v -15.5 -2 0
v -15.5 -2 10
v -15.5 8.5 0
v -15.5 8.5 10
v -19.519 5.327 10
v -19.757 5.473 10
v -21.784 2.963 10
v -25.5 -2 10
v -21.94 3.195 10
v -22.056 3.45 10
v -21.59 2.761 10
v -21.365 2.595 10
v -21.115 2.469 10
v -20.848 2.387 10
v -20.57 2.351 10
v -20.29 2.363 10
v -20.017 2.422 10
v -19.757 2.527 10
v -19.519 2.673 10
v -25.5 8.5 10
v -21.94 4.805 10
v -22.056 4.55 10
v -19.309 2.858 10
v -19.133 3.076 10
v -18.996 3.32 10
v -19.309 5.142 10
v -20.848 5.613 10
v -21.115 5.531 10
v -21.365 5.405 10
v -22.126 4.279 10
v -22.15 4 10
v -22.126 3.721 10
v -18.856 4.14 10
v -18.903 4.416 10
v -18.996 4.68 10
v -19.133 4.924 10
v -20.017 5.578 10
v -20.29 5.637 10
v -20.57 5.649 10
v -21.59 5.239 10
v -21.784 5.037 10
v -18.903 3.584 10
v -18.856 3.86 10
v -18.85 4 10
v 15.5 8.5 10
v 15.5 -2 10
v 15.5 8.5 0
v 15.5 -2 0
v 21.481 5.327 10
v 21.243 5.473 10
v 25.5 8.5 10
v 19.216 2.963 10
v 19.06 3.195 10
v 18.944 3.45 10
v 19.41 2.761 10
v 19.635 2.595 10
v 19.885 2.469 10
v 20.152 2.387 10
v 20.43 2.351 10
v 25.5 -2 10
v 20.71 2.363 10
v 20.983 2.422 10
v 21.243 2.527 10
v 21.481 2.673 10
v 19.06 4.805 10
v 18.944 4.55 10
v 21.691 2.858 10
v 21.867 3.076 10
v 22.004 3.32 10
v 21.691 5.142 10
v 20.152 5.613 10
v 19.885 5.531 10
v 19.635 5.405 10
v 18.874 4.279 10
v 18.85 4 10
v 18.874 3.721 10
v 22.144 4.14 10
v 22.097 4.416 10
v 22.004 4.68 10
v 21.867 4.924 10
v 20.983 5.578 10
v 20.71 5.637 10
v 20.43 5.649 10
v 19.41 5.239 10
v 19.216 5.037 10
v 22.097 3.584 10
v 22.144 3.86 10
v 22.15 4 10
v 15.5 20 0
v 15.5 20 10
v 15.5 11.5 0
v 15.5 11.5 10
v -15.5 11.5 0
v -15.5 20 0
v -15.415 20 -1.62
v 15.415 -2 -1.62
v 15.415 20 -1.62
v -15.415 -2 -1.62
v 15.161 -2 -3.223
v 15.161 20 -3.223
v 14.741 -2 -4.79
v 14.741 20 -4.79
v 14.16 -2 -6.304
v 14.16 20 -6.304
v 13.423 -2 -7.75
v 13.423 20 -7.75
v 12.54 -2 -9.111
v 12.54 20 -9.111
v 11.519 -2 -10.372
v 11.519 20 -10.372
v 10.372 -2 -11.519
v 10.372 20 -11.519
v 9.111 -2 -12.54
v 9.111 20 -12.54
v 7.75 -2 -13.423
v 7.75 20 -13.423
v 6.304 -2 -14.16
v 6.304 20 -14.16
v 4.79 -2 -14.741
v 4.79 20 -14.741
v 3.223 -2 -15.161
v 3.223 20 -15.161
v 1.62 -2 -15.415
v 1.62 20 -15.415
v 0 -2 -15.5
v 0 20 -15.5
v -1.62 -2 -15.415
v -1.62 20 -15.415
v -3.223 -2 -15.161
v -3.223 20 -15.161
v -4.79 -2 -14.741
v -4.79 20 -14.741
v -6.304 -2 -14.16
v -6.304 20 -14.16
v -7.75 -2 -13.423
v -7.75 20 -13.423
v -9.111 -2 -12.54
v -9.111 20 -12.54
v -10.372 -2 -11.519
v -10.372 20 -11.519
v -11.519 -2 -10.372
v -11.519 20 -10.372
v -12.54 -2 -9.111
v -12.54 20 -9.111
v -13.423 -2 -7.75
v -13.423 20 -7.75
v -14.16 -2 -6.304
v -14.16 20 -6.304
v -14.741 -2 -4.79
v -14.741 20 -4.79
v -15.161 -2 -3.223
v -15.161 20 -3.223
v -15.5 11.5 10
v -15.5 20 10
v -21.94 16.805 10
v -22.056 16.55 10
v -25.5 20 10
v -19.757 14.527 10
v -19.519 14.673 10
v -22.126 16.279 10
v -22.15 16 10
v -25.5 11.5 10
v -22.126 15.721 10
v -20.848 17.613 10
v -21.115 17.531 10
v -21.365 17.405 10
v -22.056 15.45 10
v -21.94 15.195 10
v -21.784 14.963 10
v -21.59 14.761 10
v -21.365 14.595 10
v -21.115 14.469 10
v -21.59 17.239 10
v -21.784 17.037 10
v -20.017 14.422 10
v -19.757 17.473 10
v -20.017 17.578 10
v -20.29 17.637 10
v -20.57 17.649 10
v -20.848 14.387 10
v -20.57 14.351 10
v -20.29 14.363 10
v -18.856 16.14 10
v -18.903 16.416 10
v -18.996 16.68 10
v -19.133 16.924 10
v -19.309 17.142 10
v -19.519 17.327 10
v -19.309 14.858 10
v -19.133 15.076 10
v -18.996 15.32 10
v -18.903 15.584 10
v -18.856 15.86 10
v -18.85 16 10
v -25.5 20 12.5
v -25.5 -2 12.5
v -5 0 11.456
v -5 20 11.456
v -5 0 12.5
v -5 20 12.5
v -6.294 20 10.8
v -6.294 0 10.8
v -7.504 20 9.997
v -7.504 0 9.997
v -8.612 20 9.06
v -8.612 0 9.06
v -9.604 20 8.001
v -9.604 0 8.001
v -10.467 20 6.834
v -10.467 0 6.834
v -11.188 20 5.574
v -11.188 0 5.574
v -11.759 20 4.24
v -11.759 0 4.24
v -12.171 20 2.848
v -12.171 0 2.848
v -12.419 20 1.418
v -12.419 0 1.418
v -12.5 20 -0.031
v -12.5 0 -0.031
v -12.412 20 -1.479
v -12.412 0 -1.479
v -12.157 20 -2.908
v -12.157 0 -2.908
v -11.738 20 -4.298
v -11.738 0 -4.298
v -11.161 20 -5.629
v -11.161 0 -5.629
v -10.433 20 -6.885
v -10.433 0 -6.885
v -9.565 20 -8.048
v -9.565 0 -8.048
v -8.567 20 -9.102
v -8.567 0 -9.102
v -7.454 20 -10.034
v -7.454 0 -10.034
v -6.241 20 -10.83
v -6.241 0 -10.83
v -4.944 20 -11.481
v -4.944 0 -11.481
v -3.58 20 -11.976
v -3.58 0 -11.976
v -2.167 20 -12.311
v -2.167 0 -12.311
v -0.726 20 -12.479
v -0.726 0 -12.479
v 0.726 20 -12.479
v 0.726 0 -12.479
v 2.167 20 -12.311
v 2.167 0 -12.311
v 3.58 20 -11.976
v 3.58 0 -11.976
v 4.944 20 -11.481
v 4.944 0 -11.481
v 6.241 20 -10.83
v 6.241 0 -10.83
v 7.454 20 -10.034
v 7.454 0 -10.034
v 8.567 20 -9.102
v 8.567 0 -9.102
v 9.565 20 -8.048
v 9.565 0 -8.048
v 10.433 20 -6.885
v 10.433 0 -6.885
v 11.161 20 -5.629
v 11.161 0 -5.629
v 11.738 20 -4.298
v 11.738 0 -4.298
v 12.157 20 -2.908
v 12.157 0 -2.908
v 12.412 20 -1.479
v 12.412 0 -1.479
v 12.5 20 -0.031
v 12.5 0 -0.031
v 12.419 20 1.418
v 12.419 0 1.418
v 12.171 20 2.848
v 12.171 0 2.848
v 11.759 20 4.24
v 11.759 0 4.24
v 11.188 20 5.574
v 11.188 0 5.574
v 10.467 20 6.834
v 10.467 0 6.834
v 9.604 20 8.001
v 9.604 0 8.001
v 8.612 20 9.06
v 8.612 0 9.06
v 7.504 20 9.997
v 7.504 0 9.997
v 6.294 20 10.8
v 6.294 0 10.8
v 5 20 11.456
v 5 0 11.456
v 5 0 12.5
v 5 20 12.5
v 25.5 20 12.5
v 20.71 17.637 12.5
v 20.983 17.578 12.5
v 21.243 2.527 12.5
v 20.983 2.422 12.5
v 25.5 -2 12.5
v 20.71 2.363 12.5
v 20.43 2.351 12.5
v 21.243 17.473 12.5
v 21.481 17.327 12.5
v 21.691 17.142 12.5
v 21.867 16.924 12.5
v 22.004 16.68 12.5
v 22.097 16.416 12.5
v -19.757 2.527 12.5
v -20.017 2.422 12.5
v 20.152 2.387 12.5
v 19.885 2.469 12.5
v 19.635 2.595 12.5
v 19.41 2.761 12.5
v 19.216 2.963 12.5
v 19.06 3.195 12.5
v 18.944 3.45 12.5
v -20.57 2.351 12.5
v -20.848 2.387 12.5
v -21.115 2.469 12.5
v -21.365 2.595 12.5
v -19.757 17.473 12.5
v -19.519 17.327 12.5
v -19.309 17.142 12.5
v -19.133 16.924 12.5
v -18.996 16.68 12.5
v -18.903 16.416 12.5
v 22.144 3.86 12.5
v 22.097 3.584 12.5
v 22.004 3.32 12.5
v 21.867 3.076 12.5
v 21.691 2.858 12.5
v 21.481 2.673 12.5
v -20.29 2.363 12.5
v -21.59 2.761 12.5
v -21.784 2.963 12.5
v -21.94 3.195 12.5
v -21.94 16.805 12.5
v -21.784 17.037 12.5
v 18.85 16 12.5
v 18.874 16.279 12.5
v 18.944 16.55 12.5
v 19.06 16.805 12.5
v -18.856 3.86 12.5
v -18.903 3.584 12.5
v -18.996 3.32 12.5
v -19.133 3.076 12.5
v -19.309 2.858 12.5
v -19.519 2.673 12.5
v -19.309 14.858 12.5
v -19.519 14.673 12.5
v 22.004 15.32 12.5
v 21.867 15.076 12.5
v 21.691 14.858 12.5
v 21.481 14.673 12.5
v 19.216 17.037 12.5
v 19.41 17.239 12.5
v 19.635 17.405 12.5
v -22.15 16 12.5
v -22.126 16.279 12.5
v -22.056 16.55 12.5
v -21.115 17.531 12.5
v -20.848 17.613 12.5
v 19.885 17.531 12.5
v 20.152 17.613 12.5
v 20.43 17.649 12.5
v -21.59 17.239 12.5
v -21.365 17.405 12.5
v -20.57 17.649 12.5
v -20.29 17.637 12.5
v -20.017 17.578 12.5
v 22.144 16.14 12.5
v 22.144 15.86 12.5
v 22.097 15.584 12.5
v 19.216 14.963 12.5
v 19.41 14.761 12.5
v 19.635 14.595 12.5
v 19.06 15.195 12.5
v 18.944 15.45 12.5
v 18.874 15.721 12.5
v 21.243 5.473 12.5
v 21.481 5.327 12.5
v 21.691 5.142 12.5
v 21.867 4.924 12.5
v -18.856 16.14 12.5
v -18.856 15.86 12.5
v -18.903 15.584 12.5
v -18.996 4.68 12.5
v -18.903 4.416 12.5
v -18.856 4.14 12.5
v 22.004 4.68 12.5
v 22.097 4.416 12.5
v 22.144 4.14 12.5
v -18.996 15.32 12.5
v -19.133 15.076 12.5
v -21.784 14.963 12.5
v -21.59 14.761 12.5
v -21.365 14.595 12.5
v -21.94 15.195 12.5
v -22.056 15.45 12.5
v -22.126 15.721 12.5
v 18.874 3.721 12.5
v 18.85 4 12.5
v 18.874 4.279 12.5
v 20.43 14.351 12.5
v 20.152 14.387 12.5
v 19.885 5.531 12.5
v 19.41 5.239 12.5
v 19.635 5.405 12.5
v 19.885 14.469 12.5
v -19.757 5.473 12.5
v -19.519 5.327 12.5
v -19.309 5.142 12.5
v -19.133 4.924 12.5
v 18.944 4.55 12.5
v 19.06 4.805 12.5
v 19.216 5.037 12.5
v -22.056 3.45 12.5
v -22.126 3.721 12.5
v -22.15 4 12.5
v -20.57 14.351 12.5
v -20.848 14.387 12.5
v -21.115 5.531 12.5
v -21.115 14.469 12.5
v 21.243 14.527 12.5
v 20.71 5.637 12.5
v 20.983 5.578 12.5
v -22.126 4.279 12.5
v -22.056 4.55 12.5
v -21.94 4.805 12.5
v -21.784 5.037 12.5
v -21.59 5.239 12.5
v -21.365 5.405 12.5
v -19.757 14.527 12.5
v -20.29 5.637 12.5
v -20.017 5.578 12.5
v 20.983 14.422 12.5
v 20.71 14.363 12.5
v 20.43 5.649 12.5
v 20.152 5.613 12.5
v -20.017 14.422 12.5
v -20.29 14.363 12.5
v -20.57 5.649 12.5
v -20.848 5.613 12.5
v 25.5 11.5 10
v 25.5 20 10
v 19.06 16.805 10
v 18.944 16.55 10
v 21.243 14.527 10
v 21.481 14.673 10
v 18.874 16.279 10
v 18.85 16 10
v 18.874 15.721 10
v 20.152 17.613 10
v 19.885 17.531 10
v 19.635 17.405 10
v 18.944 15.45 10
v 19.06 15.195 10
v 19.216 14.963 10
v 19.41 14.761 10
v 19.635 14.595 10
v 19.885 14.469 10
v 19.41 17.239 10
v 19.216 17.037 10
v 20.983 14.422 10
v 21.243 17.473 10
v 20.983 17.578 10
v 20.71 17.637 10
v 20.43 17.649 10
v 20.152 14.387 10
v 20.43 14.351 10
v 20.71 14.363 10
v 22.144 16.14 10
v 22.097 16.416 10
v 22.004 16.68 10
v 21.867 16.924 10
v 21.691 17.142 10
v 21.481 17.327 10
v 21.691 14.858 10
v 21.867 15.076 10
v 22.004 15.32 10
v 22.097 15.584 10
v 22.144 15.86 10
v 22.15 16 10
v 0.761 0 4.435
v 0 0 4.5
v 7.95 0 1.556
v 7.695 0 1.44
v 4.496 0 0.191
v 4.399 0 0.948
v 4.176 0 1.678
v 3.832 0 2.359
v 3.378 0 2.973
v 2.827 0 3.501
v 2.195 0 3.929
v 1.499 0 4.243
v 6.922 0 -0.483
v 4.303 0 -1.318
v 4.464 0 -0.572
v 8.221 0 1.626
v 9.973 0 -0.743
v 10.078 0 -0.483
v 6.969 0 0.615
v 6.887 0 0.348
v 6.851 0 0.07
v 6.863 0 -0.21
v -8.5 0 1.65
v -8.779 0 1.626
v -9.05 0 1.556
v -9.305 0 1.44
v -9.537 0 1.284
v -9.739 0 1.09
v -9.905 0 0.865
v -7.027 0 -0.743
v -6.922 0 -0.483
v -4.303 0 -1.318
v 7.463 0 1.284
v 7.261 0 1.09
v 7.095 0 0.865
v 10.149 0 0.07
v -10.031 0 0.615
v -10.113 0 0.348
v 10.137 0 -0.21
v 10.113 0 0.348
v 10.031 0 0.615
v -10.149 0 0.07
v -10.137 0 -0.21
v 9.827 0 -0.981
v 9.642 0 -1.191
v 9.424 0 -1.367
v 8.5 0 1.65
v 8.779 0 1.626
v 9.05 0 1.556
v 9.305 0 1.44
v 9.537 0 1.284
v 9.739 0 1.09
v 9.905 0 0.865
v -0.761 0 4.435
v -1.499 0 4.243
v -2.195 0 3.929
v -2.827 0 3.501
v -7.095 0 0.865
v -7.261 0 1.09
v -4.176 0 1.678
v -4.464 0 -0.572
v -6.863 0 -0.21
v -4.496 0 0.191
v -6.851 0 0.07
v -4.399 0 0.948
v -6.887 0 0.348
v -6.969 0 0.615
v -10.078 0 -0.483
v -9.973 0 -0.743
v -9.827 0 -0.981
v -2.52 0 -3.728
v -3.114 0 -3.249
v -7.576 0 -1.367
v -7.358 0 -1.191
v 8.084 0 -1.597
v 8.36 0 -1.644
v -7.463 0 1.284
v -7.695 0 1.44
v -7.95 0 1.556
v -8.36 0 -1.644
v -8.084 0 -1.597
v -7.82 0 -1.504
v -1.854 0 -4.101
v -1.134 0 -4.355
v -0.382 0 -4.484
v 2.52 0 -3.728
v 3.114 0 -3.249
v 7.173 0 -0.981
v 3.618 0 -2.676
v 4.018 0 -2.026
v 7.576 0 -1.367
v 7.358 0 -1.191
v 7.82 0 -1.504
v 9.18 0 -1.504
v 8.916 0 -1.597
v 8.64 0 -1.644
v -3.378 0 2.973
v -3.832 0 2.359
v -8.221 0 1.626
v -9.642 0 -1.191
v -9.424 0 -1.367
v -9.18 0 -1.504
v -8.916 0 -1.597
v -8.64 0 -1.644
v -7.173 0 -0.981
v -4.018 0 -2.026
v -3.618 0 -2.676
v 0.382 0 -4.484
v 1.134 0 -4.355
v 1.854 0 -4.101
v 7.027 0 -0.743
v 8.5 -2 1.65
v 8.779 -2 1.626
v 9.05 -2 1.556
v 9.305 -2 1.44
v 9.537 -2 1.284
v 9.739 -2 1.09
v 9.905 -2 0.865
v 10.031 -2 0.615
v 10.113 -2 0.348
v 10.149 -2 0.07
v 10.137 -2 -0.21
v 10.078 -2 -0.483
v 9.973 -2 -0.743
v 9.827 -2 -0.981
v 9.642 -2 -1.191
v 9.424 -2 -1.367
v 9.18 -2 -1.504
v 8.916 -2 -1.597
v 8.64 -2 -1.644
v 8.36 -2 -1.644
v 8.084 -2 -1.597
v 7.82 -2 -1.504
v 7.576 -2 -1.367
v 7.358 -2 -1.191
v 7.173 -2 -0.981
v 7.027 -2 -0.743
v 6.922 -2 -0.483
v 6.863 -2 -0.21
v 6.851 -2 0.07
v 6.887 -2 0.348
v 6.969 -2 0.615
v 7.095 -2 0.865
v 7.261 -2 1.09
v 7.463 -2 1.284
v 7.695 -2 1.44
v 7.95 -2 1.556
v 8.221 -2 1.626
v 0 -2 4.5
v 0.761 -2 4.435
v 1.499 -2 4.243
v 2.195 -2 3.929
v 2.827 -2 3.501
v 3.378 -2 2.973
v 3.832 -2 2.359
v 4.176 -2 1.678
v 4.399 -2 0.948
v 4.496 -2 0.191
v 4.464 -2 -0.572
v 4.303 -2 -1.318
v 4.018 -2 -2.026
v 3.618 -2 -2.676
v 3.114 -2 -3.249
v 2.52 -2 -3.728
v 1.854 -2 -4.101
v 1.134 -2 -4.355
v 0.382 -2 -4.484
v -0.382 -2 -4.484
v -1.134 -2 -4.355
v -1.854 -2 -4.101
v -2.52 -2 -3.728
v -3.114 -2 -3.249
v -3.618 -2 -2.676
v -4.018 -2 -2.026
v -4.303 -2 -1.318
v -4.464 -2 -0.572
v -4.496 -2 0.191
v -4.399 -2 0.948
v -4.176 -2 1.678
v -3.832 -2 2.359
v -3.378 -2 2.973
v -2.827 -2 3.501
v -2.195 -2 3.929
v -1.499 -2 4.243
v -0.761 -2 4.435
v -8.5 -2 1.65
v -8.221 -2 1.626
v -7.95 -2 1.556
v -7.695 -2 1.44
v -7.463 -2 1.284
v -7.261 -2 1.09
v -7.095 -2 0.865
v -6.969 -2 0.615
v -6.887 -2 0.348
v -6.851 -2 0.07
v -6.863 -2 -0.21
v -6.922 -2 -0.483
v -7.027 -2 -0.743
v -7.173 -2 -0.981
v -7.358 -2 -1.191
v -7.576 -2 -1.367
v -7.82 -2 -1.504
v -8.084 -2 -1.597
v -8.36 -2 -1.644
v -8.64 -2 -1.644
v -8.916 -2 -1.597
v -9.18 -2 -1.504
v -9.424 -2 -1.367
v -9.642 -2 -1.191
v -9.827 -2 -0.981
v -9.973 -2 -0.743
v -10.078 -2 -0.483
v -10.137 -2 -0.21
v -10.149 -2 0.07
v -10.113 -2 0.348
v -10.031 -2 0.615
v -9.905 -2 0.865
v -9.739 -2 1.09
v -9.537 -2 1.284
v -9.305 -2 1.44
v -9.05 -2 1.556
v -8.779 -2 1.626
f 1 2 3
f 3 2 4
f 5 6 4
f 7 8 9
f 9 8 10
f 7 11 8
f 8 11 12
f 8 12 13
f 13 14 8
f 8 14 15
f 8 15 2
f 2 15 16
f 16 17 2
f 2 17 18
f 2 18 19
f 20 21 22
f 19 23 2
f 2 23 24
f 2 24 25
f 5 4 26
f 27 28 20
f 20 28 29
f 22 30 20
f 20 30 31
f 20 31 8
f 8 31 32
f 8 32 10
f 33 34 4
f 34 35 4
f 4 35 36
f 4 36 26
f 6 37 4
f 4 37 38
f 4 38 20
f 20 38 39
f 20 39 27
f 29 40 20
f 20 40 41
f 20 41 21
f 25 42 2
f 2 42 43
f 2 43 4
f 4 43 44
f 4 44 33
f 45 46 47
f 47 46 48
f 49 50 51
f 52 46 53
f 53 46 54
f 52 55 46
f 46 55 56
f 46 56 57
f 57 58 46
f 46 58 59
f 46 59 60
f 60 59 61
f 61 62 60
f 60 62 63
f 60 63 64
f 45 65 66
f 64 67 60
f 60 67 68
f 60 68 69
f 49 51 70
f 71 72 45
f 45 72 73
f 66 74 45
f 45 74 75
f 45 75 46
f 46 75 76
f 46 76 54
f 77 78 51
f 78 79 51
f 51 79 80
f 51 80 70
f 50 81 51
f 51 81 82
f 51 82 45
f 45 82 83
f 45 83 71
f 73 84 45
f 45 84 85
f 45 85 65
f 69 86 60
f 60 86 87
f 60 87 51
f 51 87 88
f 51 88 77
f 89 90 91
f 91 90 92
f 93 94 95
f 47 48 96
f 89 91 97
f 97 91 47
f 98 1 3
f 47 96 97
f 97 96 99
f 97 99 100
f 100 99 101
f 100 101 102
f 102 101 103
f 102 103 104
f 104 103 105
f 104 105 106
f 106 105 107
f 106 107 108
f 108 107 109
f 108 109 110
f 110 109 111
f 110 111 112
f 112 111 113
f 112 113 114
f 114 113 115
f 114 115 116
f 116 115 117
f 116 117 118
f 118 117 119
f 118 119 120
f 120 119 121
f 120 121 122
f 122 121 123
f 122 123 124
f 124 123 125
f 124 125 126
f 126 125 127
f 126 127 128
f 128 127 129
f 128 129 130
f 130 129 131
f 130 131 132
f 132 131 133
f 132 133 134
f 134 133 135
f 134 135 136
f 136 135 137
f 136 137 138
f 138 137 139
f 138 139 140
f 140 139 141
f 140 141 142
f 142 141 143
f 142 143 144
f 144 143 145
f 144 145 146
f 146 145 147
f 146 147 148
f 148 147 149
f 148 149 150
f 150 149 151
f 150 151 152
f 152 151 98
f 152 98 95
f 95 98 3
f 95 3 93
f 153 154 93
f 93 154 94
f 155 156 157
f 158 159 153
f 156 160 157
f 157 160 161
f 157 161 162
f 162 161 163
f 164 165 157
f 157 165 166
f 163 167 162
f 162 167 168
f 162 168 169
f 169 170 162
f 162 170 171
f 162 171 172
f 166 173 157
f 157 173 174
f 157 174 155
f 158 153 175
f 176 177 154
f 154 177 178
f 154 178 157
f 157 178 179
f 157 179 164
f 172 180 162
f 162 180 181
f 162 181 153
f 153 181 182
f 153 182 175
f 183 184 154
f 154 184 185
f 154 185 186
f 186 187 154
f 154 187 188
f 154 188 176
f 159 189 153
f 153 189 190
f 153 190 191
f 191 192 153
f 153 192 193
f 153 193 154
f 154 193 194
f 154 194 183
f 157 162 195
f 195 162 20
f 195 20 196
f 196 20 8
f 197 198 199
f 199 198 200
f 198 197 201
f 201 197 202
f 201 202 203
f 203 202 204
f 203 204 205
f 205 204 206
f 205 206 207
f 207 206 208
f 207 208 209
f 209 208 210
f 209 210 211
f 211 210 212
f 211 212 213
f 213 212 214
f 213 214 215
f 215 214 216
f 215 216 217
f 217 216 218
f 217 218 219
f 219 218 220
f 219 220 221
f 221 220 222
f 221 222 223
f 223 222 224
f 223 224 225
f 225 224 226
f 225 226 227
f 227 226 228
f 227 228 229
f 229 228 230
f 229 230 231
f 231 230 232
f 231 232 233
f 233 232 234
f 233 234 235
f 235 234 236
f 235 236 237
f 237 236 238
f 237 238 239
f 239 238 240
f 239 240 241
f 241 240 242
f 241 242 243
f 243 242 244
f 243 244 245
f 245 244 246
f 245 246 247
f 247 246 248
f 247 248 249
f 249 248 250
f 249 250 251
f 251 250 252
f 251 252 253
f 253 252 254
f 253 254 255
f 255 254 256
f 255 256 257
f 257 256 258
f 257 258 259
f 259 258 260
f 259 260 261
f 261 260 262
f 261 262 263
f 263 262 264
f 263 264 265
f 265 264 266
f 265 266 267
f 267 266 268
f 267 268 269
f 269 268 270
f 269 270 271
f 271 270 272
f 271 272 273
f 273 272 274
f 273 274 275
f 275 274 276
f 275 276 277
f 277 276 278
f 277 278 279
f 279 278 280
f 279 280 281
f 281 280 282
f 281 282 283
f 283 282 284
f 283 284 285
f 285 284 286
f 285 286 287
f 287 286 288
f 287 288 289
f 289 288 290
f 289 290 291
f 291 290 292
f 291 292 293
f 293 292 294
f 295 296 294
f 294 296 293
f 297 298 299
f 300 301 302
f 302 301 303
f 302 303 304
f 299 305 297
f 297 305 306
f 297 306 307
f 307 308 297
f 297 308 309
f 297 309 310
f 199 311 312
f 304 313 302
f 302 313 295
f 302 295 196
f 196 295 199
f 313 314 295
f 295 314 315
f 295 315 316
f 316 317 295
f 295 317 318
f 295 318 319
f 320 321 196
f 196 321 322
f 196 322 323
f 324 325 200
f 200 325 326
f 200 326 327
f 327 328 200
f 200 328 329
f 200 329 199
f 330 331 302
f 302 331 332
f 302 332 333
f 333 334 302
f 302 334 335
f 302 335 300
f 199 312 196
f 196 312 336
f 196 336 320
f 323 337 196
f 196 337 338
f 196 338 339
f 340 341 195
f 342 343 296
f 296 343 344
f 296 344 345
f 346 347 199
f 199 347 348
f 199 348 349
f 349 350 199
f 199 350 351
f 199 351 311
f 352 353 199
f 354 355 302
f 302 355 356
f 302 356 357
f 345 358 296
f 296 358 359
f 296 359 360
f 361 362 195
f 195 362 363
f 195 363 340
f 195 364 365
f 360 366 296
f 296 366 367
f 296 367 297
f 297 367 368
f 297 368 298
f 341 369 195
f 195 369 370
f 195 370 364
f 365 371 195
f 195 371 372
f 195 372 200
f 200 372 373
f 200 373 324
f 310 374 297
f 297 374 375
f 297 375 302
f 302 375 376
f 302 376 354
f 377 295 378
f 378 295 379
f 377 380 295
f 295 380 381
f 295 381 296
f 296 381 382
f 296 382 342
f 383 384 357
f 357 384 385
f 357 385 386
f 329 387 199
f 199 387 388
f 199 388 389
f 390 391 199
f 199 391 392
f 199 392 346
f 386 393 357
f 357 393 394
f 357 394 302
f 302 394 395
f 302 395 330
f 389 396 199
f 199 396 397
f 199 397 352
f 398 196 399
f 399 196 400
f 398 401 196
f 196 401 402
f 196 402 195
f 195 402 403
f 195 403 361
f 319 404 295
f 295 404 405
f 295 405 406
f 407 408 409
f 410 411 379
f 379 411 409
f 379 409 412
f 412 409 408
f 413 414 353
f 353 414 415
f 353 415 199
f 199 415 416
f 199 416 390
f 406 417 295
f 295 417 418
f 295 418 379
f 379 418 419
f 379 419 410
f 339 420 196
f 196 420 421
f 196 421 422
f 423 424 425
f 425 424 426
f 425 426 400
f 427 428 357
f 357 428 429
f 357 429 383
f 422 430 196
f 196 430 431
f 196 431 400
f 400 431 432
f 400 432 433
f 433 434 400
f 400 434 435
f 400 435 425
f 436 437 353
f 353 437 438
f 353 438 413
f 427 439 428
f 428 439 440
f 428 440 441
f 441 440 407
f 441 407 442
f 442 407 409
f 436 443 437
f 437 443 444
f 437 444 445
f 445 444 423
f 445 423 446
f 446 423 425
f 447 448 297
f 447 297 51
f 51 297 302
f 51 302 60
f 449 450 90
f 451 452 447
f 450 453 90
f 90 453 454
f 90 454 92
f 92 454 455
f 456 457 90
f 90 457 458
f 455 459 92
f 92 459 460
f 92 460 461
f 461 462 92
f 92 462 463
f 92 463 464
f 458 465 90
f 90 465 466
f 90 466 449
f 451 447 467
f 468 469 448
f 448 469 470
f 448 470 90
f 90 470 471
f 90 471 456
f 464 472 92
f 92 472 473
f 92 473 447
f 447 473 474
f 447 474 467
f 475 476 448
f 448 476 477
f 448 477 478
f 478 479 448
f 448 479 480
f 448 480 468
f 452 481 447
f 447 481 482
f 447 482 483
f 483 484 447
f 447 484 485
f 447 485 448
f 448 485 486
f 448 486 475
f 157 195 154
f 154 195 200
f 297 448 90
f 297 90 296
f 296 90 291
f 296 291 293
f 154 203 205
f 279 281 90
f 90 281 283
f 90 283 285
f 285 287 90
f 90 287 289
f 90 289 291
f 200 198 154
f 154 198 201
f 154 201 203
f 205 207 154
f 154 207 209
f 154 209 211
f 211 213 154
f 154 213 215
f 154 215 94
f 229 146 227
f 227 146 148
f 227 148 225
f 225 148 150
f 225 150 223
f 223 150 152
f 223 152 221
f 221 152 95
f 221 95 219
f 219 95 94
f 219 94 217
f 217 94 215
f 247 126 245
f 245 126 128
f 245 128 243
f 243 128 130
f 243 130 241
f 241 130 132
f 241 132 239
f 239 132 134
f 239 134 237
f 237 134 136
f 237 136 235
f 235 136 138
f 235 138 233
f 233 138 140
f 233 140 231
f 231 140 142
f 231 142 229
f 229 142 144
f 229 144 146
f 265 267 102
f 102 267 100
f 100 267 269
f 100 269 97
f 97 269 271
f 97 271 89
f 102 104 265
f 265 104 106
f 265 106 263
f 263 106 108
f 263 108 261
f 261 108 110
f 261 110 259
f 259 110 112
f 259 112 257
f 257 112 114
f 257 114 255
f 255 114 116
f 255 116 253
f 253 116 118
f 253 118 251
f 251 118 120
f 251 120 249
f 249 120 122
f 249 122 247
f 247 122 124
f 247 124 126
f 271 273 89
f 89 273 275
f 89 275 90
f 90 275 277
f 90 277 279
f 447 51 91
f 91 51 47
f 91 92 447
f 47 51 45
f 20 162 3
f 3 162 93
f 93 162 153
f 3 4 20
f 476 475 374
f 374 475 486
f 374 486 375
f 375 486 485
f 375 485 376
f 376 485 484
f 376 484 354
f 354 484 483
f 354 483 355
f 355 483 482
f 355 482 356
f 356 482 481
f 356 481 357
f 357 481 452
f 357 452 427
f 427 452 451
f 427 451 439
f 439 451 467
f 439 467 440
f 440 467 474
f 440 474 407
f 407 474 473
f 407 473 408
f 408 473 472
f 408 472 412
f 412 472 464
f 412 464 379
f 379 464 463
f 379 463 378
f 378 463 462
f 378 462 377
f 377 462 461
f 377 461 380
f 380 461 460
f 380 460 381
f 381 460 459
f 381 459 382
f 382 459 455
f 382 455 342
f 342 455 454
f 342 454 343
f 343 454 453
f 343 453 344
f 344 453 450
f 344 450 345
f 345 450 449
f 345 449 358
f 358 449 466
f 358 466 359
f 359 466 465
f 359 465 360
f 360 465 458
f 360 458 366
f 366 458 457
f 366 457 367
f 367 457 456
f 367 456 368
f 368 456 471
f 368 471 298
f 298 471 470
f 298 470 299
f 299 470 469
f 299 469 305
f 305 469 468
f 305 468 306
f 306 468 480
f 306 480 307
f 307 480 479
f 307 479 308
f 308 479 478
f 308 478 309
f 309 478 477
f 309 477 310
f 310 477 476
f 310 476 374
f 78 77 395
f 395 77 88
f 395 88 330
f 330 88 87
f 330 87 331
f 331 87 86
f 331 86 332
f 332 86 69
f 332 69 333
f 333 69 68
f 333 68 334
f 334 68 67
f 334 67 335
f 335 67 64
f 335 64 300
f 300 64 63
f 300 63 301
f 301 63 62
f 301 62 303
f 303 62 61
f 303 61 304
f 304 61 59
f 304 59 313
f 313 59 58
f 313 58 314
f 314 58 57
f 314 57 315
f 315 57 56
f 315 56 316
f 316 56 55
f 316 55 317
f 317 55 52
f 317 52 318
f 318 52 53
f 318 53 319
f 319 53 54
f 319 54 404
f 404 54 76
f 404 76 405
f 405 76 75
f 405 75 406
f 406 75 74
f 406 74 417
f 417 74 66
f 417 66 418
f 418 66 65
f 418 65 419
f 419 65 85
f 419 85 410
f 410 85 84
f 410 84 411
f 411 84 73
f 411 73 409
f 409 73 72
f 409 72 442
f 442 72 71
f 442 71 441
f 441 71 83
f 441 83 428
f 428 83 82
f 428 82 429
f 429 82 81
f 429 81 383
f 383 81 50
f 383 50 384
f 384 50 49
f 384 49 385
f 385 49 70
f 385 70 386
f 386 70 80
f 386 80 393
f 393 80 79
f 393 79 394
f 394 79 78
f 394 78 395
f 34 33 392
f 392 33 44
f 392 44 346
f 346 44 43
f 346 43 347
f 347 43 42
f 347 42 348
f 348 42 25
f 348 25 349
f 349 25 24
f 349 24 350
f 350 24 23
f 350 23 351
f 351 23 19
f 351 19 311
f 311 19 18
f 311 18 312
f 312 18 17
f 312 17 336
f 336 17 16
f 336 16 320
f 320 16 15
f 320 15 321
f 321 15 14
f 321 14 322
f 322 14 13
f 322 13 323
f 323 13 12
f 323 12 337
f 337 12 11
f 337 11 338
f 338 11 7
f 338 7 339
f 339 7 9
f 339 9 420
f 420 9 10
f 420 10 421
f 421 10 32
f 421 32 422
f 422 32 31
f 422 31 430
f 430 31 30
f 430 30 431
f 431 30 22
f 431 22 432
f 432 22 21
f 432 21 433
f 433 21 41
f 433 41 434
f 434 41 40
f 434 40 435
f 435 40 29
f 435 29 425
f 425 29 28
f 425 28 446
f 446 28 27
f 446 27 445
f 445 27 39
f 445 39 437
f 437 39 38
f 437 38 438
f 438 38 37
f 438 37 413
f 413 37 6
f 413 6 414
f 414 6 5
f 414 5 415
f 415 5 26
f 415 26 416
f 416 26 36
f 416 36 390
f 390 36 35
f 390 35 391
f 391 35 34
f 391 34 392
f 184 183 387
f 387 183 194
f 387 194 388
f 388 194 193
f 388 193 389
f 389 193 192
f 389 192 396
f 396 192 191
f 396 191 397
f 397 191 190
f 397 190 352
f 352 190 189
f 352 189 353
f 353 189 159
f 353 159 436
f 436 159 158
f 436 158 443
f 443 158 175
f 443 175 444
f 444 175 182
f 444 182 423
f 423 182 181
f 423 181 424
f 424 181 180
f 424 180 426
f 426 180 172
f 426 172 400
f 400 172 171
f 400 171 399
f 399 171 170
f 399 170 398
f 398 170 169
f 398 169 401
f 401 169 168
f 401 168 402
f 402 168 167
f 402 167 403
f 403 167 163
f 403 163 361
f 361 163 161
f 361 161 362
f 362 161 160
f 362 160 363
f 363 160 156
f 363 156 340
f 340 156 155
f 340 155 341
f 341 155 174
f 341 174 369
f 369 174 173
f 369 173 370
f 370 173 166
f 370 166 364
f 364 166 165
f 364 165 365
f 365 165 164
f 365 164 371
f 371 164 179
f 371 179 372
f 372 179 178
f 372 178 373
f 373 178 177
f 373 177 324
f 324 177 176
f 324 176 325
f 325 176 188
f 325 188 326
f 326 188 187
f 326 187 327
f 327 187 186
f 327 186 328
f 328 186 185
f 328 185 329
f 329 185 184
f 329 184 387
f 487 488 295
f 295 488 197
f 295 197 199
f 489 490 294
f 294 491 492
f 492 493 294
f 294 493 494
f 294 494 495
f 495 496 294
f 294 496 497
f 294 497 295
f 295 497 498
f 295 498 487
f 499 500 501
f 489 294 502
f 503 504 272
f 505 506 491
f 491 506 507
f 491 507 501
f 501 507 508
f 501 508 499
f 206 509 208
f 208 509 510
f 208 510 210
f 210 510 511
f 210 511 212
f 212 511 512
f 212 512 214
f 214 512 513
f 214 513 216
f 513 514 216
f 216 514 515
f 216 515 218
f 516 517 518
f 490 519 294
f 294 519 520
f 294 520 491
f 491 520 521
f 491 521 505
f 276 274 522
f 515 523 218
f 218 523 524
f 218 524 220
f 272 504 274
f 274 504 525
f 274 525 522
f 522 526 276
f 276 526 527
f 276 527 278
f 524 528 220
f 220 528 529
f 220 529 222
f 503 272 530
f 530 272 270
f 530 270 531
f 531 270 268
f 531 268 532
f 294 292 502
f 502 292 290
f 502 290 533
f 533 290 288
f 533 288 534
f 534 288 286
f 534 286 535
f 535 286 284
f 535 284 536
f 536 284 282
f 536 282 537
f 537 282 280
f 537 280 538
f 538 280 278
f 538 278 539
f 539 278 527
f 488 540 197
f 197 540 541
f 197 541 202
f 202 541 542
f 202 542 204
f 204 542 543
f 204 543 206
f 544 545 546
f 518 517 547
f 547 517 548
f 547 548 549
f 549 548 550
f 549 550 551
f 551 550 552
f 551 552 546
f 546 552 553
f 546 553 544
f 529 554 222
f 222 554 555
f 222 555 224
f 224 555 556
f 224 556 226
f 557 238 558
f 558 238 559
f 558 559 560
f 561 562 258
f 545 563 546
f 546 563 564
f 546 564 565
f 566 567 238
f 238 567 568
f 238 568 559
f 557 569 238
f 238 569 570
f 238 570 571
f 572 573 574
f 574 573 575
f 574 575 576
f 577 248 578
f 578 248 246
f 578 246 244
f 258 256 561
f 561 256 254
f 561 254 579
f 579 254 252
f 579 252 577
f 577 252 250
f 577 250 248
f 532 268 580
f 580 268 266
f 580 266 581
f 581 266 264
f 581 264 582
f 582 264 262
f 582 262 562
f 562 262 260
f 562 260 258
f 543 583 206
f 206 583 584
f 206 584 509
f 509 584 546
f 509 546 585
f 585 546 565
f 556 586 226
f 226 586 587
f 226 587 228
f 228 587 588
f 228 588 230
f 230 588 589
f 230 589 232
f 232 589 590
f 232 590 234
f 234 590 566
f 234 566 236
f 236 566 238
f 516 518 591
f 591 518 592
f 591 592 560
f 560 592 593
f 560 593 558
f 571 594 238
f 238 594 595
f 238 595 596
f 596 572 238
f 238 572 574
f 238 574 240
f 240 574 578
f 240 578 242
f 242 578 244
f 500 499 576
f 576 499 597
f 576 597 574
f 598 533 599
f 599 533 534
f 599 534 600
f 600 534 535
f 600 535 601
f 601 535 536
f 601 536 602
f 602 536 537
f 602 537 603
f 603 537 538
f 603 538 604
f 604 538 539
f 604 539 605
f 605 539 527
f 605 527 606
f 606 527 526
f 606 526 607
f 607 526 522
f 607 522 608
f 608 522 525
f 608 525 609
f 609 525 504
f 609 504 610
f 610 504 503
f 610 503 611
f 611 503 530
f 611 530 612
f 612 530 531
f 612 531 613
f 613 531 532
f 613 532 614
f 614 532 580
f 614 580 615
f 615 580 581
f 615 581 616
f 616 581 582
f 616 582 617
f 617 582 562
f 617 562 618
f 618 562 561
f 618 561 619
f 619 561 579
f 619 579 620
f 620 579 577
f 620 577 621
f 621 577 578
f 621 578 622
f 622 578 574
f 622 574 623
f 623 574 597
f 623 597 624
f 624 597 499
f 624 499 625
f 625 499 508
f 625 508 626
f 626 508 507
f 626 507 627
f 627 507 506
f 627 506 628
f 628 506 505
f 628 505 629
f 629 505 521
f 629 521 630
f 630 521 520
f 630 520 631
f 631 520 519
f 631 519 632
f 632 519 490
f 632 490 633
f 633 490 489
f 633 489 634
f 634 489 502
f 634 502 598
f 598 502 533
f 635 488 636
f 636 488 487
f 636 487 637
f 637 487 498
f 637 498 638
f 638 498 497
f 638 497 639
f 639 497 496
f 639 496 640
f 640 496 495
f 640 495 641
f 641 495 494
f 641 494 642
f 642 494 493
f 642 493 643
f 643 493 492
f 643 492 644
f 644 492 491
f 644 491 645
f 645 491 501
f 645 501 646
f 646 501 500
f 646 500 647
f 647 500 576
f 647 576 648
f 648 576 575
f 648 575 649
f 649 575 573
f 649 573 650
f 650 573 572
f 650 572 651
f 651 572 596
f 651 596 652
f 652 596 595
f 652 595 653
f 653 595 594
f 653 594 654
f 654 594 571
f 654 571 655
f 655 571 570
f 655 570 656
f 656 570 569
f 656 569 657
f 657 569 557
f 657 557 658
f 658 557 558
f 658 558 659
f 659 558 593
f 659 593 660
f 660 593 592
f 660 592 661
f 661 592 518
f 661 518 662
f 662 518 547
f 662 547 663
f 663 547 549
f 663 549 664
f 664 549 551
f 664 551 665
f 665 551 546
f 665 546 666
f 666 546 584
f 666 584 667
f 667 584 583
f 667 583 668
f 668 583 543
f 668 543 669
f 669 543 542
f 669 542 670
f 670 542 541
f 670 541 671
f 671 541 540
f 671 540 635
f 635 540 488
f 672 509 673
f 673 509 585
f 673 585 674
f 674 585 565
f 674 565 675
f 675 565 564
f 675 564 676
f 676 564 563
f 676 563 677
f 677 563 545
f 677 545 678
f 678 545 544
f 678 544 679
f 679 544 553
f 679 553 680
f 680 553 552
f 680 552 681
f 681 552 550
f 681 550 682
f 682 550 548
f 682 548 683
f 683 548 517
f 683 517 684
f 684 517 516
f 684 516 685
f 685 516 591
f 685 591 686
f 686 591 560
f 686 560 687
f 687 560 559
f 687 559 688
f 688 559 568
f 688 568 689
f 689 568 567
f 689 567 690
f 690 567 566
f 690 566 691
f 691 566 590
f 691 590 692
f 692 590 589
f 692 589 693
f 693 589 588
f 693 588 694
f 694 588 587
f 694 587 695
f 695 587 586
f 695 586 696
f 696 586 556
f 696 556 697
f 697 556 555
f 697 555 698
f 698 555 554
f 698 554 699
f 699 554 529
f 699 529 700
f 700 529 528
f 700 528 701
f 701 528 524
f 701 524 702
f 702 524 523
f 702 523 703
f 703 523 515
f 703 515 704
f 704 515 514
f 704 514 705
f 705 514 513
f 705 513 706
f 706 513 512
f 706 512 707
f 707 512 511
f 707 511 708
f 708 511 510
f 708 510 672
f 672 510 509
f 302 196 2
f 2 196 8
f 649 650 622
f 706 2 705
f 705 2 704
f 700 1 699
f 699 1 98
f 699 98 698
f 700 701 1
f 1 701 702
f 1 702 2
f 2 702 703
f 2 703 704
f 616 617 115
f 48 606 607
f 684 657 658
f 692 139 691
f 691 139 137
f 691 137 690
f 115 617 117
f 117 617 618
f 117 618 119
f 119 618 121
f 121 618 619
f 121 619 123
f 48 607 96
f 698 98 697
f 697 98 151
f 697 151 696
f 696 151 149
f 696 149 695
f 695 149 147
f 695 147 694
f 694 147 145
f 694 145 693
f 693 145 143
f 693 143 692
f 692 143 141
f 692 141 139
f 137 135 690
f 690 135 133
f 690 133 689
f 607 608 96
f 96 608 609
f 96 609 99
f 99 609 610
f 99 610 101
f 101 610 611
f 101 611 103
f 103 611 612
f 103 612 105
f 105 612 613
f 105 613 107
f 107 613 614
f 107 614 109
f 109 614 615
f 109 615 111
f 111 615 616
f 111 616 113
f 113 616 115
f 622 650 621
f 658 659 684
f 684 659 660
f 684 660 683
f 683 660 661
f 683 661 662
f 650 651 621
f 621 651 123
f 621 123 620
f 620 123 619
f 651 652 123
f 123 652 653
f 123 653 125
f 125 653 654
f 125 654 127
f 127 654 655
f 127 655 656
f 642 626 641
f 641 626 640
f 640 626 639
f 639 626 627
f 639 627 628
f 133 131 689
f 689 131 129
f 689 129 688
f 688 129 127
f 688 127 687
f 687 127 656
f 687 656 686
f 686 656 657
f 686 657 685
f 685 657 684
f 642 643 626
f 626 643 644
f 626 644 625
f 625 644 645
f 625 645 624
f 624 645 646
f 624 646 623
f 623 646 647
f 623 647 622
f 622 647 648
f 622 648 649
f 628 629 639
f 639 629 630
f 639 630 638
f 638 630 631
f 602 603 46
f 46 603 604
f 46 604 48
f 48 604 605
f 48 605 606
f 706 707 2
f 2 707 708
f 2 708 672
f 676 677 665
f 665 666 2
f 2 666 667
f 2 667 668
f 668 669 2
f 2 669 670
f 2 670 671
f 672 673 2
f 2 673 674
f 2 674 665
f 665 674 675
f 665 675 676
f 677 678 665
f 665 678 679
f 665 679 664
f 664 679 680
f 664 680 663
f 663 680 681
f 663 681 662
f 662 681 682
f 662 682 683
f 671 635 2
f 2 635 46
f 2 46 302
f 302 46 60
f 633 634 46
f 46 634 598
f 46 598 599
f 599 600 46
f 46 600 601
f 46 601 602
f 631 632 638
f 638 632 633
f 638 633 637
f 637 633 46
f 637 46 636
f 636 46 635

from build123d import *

# Parameters (mm, degrees)
BOSS_EXTRUDE1_DEPTH = 20
RIB1_REACH          = 33.472
SKETCH3_WALL_W      = 79.086555552
SKETCH3_WALL_H      = 3
SKETCH4_R           = 1.65
CUT_EXTRUDE2_DEPTH  = 18
BOSS_EXTRUDE2_START = -2
SKETCH1_4_R         = 1.65
SKETCH1_4_R_2       = 4.5
BOSS_EXTRUDE2_DEPTH = 2


with BuildPart() as part:
    # Sketch1 → Boss-Extrude1 (new body)
    with BuildSketch(Plane(origin=(0, 0, 0), x_dir=(1, 0, 0), z_dir=(0, 1, 0))):
        with BuildLine():
            Line((-25.5, -10), (-25.5, -12.5))
            Line((-25.5, -12.5), (-5, -12.5))
            Line((-5, -12.5), (-5, -11.456439237))
            ThreePointArc((-5, -11.456439237), (0, 12.5), (5, -11.456439237))
            Line((5, -11.456439237), (5, -12.5))
            Line((5, -12.5), (25.5, -12.5))
            Line((25.5, -12.5), (25.5, -10))
            Line((25.5, -10), (15.5, -10))
            Line((15.5, -10), (15.5, 0))
            ThreePointArc((15.5, 0), (0, 15.5), (-15.5, 0))
            Line((-15.5, 0), (-15.5, -10))
            Line((-15.5, -10), (-25.5, -10))
        make_face()
    extrude(amount=BOSS_EXTRUDE1_DEPTH)

    # Sketch3 wall → Rib1 (add, up to next)
    with BuildSketch(Plane(origin=(20.5, 10, 5), x_dir=(0.707106781187, 0, 0.707106781187), z_dir=(0.707106781187, 0, -0.707106781187)), mode=Mode.PRIVATE) as rib1_sk1:
        Rectangle(SKETCH3_WALL_W, SKETCH3_WALL_H)
    rib1_tool1 = extrude(rib1_sk1.sketch, amount=-RIB1_REACH, mode=Mode.PRIVATE) - part.part
    rib1 = rib1_tool1.solids().sort_by_distance((20.5, 10, 5))[0]
    add(rib1)

    # Mirror1: Rib1 across plane
    add(rib1.mirror(Plane(origin=(0, 0, 0), x_dir=(0, 0, 1), z_dir=(1, 0, 0))))

    # Sketch4 → Cut-Extrude2 (cut)
    with BuildSketch(Plane.XY):
        with Locations((20.5, 16)):
            Circle(SKETCH4_R)
        with Locations((20.5, 4)):
            Circle(SKETCH4_R)
    cut_extrude2 = extrude(amount=CUT_EXTRUDE2_DEPTH, mode=Mode.SUBTRACT)

    # Mirror2: Cut-Extrude2 across plane
    add(cut_extrude2.mirror(Plane(origin=(0, 0, 0), x_dir=(0, 0, 1), z_dir=(1, 0, 0))), mode=Mode.SUBTRACT)

    # Sketch1<4> → Boss-Extrude2 (add)
    with BuildSketch(Plane(origin=(0, 0, 0), x_dir=(1, 0, 0), z_dir=(0, 1, 0)).offset(BOSS_EXTRUDE2_START)):
        with BuildLine():
            Line((-25.5, -10), (-25.5, -12.5))
            Line((-25.5, -12.5), (25.5, -12.5))
            Line((25.5, -12.5), (25.5, -10))
            Line((25.5, -10), (15.5, -10))
            Line((15.5, -10), (15.5, 0))
            ThreePointArc((15.5, 0), (0, 15.5), (-15.5, 0))
            Line((-15.5, 0), (-15.5, -10))
            Line((-15.5, -10), (-25.5, -10))
        make_face()
        with Locations((-8.5, 0)):
            Circle(SKETCH1_4_R, mode=Mode.SUBTRACT)
        Circle(SKETCH1_4_R_2, mode=Mode.SUBTRACT)
        with Locations((8.5, 0)):
            Circle(SKETCH1_4_R, mode=Mode.SUBTRACT)
    extrude(amount=BOSS_EXTRUDE2_DEPTH)


solid = part.part
